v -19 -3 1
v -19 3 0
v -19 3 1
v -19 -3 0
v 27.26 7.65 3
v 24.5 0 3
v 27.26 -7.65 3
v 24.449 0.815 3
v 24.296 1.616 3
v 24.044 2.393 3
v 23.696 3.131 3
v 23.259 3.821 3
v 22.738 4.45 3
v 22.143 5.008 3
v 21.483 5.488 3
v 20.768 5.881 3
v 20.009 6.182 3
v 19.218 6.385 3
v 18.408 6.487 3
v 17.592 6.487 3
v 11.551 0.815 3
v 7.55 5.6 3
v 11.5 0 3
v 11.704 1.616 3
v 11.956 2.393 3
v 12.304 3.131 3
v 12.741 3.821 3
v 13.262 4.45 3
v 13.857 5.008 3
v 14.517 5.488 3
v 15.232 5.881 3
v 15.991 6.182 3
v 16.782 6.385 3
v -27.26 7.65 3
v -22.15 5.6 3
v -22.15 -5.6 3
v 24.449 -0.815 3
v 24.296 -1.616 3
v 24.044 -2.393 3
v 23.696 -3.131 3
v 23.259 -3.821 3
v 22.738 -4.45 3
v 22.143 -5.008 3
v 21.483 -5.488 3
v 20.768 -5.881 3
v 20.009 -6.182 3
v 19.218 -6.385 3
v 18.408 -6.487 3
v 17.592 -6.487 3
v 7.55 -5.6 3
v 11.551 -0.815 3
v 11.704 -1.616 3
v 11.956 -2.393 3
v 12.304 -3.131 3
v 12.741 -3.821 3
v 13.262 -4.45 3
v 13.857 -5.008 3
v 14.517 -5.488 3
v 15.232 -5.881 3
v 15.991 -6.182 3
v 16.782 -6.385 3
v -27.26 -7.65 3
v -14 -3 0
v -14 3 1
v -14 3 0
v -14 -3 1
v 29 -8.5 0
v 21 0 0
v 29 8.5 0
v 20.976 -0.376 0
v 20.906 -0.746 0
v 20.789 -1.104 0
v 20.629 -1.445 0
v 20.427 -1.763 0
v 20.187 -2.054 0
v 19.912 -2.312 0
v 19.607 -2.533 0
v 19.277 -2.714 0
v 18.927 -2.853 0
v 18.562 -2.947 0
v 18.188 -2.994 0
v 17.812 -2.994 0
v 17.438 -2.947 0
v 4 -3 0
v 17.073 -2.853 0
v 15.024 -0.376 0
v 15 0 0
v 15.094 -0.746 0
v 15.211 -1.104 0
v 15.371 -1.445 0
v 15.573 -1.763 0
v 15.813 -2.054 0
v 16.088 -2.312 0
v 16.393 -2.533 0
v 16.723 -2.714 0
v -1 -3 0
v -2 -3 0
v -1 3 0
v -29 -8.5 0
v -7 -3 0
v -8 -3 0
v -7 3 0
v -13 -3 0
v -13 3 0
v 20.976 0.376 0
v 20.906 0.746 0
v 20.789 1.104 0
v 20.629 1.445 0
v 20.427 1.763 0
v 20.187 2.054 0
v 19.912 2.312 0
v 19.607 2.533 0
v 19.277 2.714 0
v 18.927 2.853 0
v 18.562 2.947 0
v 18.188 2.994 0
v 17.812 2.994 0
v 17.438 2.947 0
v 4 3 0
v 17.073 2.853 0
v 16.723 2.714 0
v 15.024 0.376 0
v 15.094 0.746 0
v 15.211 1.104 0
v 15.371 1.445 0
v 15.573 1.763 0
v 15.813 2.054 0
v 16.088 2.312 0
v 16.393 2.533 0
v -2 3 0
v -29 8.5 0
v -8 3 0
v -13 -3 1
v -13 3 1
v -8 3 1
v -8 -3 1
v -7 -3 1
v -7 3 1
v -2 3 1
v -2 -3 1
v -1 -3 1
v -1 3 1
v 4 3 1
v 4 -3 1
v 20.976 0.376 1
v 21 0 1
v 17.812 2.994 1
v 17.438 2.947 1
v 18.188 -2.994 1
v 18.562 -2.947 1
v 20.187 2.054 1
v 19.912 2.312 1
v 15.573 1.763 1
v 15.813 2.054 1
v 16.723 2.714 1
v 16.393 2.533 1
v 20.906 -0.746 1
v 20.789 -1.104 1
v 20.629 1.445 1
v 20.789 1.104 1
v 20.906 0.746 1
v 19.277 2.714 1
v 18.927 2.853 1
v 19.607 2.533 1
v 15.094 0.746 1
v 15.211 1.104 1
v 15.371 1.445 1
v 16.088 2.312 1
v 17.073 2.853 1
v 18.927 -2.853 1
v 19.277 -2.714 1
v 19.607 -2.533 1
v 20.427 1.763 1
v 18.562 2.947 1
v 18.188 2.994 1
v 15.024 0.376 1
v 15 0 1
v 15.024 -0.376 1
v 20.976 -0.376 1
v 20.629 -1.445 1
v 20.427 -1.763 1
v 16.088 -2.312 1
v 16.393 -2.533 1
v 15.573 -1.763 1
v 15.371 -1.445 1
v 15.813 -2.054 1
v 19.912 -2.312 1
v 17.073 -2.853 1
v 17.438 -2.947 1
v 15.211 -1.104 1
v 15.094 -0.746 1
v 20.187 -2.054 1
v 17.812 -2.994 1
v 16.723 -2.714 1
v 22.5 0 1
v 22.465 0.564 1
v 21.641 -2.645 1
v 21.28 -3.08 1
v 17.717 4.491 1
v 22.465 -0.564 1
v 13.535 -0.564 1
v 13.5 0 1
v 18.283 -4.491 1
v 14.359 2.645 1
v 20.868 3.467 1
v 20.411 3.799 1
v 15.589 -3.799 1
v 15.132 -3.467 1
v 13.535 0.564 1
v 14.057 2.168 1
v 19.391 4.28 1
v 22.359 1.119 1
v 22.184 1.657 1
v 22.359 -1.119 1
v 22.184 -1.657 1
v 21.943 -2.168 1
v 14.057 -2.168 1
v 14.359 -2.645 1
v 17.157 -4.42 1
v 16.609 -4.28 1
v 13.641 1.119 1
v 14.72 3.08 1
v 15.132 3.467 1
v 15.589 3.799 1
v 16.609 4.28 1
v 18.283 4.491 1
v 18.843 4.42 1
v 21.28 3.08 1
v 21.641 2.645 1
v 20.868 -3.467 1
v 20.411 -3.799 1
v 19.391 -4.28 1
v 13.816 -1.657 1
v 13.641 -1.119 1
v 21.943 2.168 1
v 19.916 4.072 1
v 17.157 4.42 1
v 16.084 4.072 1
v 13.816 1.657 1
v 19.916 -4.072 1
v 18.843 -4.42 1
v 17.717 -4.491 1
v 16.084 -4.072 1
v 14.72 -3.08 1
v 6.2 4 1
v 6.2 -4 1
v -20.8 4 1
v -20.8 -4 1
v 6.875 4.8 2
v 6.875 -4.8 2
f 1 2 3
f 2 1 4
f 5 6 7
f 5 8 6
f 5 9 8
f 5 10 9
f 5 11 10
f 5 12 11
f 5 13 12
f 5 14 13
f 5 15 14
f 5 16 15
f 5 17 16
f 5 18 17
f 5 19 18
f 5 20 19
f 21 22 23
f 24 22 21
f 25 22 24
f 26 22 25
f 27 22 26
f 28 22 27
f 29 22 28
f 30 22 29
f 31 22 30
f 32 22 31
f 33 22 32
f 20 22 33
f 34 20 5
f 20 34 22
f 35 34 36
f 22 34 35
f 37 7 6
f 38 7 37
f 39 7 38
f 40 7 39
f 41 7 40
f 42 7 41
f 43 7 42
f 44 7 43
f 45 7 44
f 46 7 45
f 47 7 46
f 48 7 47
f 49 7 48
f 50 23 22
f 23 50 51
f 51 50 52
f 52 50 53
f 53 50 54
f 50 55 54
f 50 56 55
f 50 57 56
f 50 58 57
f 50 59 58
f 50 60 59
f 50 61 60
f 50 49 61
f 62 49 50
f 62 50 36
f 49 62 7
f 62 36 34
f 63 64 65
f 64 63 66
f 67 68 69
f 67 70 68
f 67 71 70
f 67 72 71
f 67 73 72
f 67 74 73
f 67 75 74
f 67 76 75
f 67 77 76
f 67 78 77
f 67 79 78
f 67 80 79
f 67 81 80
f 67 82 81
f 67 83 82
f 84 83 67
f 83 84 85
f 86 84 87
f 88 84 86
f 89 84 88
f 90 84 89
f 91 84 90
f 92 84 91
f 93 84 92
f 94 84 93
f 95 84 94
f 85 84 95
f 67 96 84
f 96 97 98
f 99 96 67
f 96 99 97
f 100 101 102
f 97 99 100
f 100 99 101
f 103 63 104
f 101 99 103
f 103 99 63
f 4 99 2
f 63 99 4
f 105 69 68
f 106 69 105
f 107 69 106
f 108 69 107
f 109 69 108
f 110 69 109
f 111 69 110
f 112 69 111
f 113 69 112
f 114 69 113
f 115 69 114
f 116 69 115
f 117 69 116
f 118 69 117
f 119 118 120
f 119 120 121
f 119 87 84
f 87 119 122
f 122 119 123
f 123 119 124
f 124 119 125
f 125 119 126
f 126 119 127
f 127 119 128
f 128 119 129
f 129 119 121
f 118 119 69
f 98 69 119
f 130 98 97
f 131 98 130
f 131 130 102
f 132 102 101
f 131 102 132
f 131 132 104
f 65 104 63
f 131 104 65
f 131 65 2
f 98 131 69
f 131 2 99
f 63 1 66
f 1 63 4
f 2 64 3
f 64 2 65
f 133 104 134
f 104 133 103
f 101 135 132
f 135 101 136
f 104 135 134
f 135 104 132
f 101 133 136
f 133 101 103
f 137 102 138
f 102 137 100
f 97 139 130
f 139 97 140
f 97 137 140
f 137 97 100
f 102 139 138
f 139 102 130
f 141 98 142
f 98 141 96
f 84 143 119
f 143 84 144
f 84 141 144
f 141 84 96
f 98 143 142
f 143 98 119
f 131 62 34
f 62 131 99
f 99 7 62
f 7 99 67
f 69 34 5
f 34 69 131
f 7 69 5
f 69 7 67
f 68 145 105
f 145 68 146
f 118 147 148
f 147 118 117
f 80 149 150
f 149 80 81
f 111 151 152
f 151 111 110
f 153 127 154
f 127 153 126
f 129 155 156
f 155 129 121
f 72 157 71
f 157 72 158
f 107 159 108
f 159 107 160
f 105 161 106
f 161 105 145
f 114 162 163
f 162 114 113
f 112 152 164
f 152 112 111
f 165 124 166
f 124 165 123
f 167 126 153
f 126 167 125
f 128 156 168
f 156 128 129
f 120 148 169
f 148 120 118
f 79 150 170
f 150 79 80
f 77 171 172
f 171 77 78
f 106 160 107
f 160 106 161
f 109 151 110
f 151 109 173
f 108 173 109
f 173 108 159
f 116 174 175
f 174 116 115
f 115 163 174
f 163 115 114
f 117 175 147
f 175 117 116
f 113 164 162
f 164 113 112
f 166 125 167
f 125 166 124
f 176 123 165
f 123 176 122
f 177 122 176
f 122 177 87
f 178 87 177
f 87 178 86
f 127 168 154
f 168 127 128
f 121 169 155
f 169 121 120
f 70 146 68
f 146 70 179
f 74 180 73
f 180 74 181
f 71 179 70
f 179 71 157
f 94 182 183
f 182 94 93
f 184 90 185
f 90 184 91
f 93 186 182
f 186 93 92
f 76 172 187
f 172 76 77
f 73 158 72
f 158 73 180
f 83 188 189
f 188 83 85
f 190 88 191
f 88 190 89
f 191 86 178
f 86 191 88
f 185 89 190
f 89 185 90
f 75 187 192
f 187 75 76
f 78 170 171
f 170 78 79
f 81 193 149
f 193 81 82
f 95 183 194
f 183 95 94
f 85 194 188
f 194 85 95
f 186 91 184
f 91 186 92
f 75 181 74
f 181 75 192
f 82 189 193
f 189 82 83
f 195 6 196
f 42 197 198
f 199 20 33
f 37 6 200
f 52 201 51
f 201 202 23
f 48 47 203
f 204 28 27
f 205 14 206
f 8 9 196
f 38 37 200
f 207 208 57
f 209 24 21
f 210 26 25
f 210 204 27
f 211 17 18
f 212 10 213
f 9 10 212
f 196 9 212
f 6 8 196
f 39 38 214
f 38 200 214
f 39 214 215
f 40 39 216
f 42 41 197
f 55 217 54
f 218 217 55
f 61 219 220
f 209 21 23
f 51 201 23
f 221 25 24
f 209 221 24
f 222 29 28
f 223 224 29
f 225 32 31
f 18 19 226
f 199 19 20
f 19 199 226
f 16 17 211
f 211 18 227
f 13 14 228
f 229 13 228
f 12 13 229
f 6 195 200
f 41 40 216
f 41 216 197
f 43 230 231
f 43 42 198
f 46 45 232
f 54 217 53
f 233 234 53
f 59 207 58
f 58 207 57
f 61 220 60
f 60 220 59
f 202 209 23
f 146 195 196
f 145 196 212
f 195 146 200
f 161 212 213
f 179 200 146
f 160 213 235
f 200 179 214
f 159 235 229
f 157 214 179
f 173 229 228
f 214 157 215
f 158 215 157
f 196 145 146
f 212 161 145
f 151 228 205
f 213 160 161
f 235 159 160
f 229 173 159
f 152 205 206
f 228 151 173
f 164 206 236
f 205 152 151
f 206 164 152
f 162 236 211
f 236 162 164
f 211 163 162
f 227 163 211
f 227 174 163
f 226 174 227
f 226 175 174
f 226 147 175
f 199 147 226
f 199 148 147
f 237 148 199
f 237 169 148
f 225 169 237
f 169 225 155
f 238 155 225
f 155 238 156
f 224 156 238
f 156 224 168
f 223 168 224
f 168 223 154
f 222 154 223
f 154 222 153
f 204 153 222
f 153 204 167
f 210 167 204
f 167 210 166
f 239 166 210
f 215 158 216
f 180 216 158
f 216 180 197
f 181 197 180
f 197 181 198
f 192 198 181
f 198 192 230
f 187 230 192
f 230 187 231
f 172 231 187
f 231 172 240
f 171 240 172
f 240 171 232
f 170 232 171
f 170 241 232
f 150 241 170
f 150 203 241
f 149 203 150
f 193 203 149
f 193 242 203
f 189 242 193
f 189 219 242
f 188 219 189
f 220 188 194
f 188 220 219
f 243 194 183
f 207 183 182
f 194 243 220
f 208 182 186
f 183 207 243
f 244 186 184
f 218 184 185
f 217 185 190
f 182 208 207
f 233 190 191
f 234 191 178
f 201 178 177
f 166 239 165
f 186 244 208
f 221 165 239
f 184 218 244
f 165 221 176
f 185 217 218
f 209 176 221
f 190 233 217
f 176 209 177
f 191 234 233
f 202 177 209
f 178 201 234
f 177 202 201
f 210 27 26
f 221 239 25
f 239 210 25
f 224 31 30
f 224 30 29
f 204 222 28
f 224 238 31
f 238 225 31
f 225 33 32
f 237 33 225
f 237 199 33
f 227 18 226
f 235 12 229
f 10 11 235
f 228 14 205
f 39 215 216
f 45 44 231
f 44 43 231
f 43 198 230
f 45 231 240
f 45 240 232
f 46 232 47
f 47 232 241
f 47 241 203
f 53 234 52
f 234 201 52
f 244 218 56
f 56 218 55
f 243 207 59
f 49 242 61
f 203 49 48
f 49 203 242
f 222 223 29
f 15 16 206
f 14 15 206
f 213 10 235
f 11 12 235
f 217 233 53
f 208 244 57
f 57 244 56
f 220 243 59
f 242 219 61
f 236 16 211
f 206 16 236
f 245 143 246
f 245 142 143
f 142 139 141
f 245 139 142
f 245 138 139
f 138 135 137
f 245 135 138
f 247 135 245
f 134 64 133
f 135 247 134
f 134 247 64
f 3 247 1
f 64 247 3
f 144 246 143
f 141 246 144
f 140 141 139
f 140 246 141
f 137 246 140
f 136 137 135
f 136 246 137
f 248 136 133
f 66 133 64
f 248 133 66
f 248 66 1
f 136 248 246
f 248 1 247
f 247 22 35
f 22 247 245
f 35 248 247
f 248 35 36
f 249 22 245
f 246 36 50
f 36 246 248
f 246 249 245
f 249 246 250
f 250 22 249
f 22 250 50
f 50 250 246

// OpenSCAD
module body() {
    linear_extrude(height = 3, scale=[0.94, 0.9])
        square(size = [58, 17], center=true);
}

module buttonhole() {
    cylinder(h=3, r= 3, $fn=50);
}

module digithole() {
   cube([5,6,3]);
}

module digitholes() {
    digithole();
    translate([6, 0 ,0])
        digithole();
    translate([12, 0 ,0])
        digithole();
    translate([18, 0 ,0])
        digithole();
}

module buttonoutcut() {
    cylinder(h=2, r1=4.5, r2=6.5, $fn=50);
}

module digitoutcut() {
    linear_extrude(height = 2, scale=[1.1, 1.4])
        square(size = [27, 8], center=true);
}

module all() {
    difference(){
        body();
        translate([18,0,0])
            buttonhole();        
        translate([18,0,1])
            buttonoutcut();
        translate([-19,-3,0])
            digitholes();
        translate([-7.3,0,1])
            digitoutcut();
        
    }
}

// projection is for creating a dxf file to measure the object
//projection(cut=true) translate([0,0, -0.5])
all();
